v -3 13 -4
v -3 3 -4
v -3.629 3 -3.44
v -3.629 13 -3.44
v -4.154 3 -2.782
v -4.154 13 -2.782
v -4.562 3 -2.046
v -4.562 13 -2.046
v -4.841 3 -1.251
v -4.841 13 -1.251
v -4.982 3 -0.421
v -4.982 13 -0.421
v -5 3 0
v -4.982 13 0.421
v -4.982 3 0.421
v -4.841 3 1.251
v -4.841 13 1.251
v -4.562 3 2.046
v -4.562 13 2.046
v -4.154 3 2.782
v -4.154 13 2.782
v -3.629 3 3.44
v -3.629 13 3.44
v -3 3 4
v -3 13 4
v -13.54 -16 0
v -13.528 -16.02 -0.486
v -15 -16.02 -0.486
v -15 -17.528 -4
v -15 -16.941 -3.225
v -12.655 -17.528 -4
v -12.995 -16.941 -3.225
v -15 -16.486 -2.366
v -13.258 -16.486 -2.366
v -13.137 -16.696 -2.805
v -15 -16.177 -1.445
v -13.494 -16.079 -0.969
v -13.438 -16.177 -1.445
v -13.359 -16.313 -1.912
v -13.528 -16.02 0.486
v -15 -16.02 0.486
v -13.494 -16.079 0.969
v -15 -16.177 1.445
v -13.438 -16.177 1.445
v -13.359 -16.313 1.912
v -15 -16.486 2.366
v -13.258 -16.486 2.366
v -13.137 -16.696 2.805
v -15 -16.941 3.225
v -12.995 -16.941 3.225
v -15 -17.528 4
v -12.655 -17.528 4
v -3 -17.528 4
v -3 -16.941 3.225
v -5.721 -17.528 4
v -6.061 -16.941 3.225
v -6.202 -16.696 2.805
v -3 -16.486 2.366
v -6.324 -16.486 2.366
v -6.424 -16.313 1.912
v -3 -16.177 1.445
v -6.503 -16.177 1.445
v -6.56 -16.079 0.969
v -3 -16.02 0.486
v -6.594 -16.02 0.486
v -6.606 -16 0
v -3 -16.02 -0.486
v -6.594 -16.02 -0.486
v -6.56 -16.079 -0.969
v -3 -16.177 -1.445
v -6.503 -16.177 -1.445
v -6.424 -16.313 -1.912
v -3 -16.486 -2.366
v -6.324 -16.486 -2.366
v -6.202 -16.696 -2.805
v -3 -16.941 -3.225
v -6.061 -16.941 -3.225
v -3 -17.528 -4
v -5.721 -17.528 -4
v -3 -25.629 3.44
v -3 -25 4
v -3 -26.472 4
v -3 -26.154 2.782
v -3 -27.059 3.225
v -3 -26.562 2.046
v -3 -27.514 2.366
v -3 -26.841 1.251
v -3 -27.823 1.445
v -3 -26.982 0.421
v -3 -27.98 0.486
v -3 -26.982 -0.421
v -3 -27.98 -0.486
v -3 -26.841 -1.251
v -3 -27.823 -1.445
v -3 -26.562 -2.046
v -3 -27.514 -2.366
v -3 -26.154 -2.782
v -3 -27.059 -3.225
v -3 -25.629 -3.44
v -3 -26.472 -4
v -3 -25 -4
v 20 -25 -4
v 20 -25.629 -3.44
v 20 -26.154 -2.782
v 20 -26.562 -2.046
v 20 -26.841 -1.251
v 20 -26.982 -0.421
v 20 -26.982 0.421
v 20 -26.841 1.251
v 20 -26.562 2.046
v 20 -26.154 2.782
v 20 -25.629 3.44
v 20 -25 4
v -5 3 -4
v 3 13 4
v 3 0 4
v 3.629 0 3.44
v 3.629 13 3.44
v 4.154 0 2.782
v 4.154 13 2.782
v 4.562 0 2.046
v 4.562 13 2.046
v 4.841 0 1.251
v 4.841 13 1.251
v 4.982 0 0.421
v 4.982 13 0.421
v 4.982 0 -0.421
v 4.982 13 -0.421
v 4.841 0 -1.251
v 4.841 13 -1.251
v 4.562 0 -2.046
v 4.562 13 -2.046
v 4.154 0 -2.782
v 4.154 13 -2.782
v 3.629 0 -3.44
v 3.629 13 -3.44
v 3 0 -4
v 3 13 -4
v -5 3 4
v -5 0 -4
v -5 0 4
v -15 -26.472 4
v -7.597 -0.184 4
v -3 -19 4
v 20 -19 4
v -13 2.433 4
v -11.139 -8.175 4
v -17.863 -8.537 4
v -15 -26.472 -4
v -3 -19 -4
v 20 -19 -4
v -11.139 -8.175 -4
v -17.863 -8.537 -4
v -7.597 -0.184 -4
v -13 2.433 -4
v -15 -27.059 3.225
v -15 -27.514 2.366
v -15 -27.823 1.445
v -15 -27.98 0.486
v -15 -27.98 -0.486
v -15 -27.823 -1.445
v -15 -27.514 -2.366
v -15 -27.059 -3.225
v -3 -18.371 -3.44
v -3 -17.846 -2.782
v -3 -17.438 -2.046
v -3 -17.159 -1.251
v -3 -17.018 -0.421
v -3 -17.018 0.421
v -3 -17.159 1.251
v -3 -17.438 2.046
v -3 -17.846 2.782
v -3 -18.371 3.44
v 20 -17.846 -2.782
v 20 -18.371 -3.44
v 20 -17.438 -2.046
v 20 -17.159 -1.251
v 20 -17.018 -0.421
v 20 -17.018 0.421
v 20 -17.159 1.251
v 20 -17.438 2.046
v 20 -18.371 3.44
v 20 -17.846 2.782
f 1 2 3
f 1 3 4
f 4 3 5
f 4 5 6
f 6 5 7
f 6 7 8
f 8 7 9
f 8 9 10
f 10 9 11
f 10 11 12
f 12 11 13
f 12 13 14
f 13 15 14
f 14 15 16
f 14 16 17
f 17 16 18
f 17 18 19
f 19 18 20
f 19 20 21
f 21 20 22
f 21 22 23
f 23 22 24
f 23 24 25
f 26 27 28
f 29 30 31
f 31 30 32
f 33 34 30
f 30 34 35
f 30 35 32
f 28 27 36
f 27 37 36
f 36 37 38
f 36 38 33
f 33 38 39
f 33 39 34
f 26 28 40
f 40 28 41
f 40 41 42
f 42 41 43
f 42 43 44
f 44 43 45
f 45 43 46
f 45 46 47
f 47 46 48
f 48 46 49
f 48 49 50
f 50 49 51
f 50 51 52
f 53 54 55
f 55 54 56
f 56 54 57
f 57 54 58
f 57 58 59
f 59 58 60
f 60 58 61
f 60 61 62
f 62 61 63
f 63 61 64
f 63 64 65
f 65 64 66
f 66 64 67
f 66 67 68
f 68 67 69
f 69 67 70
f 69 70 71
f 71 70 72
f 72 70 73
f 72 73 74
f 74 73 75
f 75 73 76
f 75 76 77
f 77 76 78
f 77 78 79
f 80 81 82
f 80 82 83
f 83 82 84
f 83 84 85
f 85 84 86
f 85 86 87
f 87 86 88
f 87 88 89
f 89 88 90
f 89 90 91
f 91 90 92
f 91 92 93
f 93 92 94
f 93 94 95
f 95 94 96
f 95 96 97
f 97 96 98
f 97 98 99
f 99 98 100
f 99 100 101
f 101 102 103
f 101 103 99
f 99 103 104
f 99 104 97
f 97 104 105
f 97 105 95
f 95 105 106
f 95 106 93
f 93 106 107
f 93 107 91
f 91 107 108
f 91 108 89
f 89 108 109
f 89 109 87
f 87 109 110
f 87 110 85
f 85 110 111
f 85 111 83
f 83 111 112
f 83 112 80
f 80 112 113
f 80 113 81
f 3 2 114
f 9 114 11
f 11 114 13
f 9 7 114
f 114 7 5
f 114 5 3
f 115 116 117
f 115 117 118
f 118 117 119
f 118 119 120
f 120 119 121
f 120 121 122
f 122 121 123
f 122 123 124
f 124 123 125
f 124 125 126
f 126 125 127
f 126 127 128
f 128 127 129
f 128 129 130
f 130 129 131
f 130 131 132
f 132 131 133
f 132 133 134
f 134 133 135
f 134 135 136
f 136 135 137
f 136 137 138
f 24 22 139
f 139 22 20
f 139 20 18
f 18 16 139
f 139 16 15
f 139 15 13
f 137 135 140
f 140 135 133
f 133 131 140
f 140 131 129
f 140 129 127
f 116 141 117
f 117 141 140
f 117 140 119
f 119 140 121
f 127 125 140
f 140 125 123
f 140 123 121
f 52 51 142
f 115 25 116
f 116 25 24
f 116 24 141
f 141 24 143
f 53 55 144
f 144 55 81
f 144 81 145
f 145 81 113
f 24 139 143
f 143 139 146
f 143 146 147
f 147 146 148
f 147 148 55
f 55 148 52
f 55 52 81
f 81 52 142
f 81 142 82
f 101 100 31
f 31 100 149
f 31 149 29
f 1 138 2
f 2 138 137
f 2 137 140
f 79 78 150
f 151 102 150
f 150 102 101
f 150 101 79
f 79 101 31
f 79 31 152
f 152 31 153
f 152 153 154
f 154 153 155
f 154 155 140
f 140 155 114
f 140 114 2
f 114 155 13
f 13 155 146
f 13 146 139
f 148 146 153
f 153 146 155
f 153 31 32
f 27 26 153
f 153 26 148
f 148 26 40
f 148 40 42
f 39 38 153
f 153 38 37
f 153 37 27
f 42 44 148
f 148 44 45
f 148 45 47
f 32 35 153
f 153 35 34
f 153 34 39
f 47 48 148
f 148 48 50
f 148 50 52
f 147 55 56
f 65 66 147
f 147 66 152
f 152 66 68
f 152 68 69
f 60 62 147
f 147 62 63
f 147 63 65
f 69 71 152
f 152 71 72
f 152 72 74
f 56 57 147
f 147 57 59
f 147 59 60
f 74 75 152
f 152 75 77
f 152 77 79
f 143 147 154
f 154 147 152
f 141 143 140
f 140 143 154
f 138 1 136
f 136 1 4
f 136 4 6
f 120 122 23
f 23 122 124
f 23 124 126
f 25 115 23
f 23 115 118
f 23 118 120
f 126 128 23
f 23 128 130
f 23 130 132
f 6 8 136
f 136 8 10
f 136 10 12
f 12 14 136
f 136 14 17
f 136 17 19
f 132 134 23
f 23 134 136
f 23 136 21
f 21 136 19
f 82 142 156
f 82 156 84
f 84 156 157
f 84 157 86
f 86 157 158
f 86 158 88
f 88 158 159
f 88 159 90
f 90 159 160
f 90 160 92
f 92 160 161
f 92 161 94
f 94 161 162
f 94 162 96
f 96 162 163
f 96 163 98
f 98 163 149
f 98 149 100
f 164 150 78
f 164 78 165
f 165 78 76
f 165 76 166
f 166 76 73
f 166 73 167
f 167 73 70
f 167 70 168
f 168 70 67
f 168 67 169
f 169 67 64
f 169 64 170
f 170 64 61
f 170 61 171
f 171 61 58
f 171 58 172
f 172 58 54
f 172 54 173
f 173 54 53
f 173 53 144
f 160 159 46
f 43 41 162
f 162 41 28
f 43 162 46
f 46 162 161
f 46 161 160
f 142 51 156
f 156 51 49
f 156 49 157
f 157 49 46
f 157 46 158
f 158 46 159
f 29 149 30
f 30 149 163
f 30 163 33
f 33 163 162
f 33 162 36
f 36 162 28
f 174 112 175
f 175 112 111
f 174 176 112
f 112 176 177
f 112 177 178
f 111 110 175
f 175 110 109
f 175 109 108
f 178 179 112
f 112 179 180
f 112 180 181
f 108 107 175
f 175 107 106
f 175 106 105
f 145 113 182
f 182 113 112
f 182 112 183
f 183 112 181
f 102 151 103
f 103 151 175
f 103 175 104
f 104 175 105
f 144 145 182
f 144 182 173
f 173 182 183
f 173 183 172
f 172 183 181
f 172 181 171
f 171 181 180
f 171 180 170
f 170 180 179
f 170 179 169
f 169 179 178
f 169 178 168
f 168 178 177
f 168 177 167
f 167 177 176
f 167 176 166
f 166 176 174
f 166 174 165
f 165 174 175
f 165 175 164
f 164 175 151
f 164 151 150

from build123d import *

# Parameters (mm, degrees)
CROQUIS1_R              = 5
SALIENTE_EXTRUIR1_DEPTH = 3
SALIENTE_EXTRUIR2_DEPTH = 4
CROQUIS4_R              = 5
SALIENTE_EXTRUIR3_DEPTH = 15
CROQUIS6_R              = 5
SALIENTE_EXTRUIR5_DEPTH = 20
CROQUIS3_R              = 5
SALIENTE_EXTRUIR7_DEPTH = 10
CROQUIS12_R             = 6
SALIENTE_EXTRUIR8_DEPTH = 12
CROQUIS11_W             = 60
CROQUIS11_H             = 5
CORTAR_EXTRUIR4_DEPTH   = 42


with BuildPart() as part:
    # Croquis1 → Saliente-Extruir1 (new body)
    with BuildSketch(Plane(origin=(0, 0, 0), x_dir=(1, 0, 0), z_dir=(0, 1, 0))):
        Circle(CROQUIS1_R)
    extrude(amount=SALIENTE_EXTRUIR1_DEPTH)

    # Croquis2 → Saliente-Extruir2 (add, symmetric)
    with BuildSketch(Plane.XY):
        Polygon((-5, 3), (-13, 2.43295135), (-17.863199041, -8.537431282), (-8.325792195, -25), (-1.391615301, -25), (-11.139227196, -8.174595228), (-7.597010616, -0.184078921), (-5, 0), (0, 0), (0, 3), align=None)
    extrude(amount=SALIENTE_EXTRUIR2_DEPTH, both=True)

    # Croquis4 → Saliente-Extruir3 (add)
    with BuildSketch(Plane(origin=(0, 0, 0), x_dir=(0, 0, -1), z_dir=(1, 0, 0))):
        with Locations((0, -22)):
            Circle(CROQUIS4_R)
    extrude(amount=-SALIENTE_EXTRUIR3_DEPTH)

    # Croquis6 → Saliente-Extruir5 (add)
    with BuildSketch(Plane(origin=(0, 0, 0), x_dir=(0, 0, -1), z_dir=(1, 0, 0))):
        with Locations((0, -22)):
            Circle(CROQUIS6_R)
    extrude(amount=SALIENTE_EXTRUIR5_DEPTH)

    # Croquis3 → Saliente-Extruir7 (add)
    with BuildSketch(Plane(origin=(0, 3, 0), x_dir=(1, 0, 0), z_dir=(0, 1, 0))):
        Circle(CROQUIS3_R)
    extrude(amount=SALIENTE_EXTRUIR7_DEPTH)

    # Croquis12 → Saliente-Extruir8 (add)
    with BuildSketch(Plane.ZY.offset(15)):
        with Locations((0, -22)):
            Circle(CROQUIS12_R)
    extrude(amount=-SALIENTE_EXTRUIR8_DEPTH)

    # Croquis11 → Cortar-Extruir4 (cut, through all)
    with BuildSketch(Plane(origin=(0, 13, 0), x_dir=(1, 0, 0), z_dir=(0, 1, 0))):
        with Locations((-3, 6.5)):
            Rectangle(CROQUIS11_W, CROQUIS11_H)
        with Locations((-3, -6.5)):
            Rectangle(CROQUIS11_W, CROQUIS11_H)
    extrude(amount=-CORTAR_EXTRUIR4_DEPTH, mode=Mode.SUBTRACT)


solid = part.part
